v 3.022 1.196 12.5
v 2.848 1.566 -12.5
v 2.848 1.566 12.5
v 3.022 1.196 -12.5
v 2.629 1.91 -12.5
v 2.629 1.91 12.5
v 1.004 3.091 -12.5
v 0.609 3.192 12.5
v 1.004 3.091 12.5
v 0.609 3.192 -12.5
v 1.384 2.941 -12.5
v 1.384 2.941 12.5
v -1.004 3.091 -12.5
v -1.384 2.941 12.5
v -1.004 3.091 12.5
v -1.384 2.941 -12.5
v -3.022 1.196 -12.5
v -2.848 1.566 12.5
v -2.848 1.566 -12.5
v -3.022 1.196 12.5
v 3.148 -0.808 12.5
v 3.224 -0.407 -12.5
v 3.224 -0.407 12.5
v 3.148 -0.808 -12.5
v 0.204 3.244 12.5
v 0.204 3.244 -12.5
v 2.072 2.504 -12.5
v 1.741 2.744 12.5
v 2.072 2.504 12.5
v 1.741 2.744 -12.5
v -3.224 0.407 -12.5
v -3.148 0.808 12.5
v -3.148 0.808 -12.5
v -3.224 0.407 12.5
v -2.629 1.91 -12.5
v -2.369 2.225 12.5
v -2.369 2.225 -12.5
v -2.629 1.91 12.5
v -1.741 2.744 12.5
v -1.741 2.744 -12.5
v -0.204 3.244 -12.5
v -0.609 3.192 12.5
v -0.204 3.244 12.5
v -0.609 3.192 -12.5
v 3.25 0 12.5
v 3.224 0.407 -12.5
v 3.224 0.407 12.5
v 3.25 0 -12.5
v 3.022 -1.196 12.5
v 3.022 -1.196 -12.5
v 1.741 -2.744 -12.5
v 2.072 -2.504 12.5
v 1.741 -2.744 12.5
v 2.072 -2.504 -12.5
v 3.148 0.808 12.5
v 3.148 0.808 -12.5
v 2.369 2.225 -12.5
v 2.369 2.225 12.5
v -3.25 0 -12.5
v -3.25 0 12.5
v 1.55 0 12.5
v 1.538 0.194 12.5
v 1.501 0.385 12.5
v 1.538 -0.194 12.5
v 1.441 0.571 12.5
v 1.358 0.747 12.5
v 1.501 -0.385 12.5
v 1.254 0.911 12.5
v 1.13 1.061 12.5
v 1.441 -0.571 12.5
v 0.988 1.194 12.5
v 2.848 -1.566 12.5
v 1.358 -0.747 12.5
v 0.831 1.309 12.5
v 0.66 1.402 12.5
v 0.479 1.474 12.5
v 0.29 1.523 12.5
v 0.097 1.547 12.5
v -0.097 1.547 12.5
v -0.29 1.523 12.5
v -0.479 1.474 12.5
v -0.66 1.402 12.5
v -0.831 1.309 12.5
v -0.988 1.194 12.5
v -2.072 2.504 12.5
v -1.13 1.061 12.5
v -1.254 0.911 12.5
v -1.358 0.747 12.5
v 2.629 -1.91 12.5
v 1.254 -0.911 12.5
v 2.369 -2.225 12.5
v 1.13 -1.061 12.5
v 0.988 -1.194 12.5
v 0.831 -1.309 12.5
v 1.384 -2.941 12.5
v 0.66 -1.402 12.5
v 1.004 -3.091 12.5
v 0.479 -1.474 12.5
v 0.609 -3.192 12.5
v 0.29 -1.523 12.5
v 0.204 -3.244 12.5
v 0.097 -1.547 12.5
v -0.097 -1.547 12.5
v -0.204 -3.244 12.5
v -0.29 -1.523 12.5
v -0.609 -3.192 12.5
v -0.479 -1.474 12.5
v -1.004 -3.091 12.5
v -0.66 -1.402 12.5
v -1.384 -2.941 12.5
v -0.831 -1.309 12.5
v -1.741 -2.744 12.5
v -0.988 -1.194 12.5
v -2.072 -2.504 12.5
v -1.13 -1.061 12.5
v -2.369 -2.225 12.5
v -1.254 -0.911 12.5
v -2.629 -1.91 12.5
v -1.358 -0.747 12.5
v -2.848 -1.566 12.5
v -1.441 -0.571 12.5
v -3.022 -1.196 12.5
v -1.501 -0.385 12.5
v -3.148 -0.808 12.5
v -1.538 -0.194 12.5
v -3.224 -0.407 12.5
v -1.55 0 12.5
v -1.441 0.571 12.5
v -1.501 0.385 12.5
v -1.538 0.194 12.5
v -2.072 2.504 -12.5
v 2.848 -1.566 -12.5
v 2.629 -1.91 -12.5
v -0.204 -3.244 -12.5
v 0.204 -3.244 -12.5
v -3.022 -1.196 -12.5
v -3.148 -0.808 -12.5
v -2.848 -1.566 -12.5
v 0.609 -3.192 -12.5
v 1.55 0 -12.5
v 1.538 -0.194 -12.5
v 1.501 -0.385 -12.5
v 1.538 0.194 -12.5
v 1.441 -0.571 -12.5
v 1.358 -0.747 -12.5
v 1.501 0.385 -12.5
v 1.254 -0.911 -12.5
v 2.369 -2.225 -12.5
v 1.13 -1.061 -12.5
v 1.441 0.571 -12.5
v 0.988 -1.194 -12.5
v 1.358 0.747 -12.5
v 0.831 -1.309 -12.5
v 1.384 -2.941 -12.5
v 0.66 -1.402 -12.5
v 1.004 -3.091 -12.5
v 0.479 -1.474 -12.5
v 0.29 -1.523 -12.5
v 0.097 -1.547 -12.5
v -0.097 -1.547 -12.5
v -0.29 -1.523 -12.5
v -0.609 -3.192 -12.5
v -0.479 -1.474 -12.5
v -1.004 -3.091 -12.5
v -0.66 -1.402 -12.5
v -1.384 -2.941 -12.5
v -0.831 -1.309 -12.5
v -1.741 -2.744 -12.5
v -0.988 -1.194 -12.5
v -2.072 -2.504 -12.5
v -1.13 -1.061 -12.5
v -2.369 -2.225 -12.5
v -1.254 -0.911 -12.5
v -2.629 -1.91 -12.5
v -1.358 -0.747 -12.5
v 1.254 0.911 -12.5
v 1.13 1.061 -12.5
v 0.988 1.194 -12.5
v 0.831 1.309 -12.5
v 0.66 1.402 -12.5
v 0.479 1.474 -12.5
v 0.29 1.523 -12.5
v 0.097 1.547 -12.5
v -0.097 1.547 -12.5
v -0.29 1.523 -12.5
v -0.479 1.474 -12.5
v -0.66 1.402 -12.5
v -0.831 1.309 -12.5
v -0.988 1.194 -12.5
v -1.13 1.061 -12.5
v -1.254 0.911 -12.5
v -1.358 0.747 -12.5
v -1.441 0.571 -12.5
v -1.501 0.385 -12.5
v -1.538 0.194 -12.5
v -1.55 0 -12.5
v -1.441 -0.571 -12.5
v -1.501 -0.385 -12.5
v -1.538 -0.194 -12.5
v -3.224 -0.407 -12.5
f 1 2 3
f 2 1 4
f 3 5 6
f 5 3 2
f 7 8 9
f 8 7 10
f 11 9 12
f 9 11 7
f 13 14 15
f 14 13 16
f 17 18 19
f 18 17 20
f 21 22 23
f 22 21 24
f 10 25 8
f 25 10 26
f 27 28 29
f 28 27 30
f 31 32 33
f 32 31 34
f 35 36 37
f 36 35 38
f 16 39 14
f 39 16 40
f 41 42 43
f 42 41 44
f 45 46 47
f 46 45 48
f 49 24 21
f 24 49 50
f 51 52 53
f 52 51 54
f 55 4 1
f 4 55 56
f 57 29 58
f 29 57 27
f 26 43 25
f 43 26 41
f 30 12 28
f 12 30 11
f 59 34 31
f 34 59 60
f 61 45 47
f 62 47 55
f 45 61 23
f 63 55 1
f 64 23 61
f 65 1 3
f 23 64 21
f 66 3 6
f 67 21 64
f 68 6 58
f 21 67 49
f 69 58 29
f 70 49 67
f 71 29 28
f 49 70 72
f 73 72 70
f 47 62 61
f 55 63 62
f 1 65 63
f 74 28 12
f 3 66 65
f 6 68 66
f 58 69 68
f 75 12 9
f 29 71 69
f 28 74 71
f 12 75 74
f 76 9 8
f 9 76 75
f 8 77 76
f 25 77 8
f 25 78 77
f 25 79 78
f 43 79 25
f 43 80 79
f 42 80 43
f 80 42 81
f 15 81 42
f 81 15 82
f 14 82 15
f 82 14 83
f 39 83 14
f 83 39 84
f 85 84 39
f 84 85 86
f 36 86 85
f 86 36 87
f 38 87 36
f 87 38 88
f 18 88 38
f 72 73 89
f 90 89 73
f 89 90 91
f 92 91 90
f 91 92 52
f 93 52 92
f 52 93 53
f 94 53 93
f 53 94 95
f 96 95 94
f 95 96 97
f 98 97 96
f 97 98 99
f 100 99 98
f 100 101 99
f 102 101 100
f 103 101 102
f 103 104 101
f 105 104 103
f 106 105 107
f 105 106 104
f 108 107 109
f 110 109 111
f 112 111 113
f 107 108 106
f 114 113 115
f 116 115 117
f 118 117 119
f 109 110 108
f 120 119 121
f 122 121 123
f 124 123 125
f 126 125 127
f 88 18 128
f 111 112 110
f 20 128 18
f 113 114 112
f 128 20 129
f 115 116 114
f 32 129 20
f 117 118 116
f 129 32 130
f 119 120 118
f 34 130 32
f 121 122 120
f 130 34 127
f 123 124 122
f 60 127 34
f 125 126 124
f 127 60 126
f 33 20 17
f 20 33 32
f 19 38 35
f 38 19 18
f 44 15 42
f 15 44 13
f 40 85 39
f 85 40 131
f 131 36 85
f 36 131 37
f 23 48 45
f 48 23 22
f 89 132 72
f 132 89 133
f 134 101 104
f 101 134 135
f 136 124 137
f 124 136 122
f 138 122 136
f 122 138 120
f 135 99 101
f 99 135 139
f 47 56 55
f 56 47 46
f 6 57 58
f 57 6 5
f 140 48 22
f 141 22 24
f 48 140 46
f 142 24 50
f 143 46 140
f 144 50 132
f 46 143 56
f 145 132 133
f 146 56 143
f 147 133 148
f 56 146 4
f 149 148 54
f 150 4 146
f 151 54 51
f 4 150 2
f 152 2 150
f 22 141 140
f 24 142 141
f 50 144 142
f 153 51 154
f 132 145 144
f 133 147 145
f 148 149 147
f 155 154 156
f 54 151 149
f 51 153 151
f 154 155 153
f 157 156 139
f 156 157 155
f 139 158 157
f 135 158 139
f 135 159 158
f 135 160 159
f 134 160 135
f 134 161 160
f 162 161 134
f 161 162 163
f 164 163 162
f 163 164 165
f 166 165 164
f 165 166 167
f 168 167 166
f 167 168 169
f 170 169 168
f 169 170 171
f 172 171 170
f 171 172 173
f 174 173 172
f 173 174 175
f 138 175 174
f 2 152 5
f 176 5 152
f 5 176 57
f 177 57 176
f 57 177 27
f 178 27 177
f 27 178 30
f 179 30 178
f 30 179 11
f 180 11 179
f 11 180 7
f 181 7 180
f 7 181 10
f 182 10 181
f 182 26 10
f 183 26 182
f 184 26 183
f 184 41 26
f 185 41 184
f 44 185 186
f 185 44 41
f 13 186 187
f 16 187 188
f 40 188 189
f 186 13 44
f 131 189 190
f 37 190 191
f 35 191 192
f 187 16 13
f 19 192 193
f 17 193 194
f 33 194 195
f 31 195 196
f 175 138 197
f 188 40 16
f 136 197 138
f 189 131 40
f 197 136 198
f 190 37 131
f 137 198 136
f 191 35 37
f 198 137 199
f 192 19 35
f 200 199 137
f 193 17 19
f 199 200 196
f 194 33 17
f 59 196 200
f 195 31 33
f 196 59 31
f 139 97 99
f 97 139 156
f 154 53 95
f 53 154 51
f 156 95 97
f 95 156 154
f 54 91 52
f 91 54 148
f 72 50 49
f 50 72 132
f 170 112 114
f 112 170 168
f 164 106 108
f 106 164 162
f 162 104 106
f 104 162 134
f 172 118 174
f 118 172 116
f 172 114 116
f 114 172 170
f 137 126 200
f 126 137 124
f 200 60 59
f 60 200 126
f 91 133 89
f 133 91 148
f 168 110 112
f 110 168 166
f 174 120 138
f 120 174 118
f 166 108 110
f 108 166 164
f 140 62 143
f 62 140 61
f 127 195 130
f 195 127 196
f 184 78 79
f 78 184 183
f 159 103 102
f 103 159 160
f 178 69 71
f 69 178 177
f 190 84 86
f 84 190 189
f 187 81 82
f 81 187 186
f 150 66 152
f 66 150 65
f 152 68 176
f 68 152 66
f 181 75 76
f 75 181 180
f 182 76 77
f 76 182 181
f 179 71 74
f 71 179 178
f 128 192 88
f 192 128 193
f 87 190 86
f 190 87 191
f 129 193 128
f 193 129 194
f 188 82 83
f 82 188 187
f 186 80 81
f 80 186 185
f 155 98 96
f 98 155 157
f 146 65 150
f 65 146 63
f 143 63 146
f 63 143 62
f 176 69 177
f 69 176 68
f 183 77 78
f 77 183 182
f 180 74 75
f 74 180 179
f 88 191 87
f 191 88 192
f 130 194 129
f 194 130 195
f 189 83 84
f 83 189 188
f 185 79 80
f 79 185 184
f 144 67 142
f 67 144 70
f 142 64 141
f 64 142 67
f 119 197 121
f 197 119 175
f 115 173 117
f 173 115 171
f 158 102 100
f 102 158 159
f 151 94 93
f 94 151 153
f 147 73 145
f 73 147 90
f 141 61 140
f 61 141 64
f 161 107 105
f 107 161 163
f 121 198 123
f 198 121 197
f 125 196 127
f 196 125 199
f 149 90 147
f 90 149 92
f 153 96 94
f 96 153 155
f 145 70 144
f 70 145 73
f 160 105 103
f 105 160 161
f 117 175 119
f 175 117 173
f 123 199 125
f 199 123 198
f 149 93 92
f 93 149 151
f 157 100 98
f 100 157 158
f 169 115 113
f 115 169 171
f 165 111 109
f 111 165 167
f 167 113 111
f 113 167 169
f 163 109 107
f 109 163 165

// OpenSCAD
$fn = 50;


difference() {
	union() {
		translate(v = [0, 0, -12.5000000000]) {
			cylinder(h = 25, r = 3.2500000000);
		}
	}
	union() {
		translate(v = [0, 0, -100.0000000000]) {
			cylinder(h = 200, r = 1.5500000000);
		}
	}
}
